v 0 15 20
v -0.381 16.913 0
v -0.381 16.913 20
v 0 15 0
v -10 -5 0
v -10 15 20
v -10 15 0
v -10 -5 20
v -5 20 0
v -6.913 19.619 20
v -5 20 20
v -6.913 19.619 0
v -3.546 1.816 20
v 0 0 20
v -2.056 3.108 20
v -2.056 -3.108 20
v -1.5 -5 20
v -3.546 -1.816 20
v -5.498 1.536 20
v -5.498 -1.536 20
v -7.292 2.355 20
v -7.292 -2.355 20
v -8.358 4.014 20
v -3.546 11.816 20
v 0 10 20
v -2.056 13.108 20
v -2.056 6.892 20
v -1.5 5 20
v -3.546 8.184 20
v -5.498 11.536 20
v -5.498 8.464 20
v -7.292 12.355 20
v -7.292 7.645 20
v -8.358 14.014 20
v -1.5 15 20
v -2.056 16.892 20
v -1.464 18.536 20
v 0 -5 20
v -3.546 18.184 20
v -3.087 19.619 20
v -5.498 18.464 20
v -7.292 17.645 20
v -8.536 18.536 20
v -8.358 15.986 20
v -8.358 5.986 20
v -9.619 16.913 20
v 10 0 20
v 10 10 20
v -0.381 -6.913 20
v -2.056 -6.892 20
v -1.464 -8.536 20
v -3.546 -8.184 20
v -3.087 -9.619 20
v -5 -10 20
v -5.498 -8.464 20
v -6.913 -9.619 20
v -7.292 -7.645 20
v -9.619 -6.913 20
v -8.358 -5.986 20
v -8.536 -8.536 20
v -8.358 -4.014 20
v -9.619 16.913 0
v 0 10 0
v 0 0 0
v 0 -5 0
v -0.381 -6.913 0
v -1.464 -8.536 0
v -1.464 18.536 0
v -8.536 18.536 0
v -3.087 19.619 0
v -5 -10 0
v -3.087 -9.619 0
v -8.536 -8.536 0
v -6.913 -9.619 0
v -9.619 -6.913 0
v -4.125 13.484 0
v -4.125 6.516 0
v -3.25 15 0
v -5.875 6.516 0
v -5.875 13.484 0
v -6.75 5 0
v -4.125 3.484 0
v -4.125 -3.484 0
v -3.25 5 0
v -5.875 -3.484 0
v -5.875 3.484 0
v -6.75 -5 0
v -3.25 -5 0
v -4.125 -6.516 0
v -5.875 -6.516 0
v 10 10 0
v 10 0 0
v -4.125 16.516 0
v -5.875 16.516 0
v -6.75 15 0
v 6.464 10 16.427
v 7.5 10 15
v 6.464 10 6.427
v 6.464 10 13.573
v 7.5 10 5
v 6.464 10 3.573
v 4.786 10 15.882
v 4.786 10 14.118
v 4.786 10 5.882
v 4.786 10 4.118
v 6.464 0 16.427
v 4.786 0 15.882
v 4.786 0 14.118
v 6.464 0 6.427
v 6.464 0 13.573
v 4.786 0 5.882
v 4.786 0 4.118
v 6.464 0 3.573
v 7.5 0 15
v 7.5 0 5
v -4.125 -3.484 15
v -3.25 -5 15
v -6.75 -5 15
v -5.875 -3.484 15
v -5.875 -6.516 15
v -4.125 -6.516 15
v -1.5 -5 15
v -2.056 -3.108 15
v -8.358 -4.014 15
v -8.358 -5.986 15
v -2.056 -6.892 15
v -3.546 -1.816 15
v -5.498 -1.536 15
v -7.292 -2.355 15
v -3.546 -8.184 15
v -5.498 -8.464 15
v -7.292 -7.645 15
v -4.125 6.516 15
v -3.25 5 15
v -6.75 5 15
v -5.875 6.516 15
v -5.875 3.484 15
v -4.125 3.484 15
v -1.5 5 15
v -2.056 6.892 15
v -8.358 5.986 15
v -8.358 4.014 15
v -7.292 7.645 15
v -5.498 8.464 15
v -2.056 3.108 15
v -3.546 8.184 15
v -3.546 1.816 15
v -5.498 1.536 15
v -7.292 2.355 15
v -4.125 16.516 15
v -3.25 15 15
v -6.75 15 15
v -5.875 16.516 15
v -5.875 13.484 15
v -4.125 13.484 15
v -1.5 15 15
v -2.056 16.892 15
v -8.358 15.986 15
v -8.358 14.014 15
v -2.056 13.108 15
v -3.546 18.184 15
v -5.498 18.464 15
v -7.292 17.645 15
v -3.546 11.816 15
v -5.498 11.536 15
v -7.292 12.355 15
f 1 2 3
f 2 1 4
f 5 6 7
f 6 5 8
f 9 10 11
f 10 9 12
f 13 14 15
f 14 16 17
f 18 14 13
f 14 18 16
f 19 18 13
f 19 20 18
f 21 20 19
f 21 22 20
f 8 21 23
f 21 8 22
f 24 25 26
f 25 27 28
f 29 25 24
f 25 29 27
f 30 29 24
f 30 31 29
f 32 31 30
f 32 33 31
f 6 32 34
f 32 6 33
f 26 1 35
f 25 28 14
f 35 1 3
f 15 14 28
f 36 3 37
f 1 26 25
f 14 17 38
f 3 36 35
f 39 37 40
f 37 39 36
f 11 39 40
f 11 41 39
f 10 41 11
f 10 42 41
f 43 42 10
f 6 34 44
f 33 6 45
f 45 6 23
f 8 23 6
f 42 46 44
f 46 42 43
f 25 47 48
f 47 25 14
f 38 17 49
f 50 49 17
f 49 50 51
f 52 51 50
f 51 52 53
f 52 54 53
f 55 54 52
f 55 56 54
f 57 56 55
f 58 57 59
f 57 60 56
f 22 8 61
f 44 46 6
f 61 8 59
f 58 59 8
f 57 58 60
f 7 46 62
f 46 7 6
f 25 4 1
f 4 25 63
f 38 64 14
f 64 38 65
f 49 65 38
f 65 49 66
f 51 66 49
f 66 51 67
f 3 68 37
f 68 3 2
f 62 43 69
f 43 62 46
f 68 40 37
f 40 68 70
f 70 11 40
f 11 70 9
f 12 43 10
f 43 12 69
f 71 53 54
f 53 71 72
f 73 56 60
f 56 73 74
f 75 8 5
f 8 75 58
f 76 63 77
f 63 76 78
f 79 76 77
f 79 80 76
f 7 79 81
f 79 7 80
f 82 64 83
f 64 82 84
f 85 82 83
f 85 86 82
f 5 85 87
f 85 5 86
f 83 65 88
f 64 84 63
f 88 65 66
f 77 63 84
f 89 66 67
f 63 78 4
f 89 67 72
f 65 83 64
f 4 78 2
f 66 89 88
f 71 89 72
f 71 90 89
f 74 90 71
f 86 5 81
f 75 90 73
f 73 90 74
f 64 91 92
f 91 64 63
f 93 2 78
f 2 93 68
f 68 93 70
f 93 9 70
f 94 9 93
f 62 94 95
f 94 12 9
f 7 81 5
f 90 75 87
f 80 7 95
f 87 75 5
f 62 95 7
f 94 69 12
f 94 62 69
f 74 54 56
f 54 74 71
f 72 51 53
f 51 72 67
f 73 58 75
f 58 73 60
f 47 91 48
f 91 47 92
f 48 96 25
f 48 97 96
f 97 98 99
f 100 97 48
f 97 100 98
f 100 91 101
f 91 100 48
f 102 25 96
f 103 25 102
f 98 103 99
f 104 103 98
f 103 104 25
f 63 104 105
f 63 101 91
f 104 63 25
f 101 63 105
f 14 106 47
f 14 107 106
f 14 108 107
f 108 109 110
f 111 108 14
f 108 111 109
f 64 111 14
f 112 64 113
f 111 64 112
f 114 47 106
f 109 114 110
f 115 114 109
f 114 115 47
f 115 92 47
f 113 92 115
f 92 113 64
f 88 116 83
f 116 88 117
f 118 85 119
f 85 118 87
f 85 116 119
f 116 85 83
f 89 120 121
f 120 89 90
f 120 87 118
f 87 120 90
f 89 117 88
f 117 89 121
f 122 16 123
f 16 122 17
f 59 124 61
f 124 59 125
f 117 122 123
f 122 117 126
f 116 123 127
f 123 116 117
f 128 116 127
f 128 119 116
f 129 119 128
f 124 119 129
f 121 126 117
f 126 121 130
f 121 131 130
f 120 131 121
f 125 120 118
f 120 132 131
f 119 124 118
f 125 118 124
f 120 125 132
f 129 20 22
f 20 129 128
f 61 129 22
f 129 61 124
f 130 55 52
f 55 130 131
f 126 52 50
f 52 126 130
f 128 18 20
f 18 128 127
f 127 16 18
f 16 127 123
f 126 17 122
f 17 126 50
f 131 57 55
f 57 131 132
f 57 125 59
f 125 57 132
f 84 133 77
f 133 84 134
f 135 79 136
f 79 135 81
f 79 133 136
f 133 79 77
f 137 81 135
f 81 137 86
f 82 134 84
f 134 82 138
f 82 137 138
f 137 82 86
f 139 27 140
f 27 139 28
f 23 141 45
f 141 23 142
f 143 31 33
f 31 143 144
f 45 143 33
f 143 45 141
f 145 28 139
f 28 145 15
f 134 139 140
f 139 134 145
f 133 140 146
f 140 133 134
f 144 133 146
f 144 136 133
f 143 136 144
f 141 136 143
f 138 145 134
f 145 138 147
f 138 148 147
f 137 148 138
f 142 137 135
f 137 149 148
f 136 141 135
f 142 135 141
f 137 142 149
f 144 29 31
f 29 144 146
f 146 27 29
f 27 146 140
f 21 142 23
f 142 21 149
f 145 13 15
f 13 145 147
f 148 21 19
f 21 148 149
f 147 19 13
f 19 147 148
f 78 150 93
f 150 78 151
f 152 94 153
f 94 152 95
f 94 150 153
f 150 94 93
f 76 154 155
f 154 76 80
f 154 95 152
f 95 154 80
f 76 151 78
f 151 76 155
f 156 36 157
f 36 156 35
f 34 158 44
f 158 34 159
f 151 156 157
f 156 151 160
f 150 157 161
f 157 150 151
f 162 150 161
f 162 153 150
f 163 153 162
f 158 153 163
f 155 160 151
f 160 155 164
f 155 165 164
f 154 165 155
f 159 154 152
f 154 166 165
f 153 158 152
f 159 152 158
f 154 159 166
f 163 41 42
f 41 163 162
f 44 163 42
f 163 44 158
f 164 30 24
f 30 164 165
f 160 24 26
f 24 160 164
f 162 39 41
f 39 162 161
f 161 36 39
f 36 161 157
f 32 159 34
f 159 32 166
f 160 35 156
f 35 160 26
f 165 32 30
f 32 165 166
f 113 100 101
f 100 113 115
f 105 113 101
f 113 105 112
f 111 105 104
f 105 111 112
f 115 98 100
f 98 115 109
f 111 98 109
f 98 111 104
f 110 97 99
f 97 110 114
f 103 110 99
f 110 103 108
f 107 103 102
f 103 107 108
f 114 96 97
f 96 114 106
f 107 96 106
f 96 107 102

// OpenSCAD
module main() {
	difference() {
		union() {
			hull() {
				for(y = [-5, 5, 15])
					translate([-5, y])
						cylinder(d = 10, h = 20);
			}
			hull() {
				translate([-5, 5])
					cylinder(d = 10, h = 20);
				cube([10, 10, 20]);
			}
		}

		for(y = [-5, 5, 15])
			translate([-5, y]) {
				cylinder(d = 3.5, h = 20);
				translate([0, 0, 15])
					cylinder(d = 7, h = 5);
			}

		for(z = [5, 15])
			translate([30-24, 0, z])
				rotate([-90, 0, 0])
					cylinder(d = 3, h = 10);
	}
}

main();
